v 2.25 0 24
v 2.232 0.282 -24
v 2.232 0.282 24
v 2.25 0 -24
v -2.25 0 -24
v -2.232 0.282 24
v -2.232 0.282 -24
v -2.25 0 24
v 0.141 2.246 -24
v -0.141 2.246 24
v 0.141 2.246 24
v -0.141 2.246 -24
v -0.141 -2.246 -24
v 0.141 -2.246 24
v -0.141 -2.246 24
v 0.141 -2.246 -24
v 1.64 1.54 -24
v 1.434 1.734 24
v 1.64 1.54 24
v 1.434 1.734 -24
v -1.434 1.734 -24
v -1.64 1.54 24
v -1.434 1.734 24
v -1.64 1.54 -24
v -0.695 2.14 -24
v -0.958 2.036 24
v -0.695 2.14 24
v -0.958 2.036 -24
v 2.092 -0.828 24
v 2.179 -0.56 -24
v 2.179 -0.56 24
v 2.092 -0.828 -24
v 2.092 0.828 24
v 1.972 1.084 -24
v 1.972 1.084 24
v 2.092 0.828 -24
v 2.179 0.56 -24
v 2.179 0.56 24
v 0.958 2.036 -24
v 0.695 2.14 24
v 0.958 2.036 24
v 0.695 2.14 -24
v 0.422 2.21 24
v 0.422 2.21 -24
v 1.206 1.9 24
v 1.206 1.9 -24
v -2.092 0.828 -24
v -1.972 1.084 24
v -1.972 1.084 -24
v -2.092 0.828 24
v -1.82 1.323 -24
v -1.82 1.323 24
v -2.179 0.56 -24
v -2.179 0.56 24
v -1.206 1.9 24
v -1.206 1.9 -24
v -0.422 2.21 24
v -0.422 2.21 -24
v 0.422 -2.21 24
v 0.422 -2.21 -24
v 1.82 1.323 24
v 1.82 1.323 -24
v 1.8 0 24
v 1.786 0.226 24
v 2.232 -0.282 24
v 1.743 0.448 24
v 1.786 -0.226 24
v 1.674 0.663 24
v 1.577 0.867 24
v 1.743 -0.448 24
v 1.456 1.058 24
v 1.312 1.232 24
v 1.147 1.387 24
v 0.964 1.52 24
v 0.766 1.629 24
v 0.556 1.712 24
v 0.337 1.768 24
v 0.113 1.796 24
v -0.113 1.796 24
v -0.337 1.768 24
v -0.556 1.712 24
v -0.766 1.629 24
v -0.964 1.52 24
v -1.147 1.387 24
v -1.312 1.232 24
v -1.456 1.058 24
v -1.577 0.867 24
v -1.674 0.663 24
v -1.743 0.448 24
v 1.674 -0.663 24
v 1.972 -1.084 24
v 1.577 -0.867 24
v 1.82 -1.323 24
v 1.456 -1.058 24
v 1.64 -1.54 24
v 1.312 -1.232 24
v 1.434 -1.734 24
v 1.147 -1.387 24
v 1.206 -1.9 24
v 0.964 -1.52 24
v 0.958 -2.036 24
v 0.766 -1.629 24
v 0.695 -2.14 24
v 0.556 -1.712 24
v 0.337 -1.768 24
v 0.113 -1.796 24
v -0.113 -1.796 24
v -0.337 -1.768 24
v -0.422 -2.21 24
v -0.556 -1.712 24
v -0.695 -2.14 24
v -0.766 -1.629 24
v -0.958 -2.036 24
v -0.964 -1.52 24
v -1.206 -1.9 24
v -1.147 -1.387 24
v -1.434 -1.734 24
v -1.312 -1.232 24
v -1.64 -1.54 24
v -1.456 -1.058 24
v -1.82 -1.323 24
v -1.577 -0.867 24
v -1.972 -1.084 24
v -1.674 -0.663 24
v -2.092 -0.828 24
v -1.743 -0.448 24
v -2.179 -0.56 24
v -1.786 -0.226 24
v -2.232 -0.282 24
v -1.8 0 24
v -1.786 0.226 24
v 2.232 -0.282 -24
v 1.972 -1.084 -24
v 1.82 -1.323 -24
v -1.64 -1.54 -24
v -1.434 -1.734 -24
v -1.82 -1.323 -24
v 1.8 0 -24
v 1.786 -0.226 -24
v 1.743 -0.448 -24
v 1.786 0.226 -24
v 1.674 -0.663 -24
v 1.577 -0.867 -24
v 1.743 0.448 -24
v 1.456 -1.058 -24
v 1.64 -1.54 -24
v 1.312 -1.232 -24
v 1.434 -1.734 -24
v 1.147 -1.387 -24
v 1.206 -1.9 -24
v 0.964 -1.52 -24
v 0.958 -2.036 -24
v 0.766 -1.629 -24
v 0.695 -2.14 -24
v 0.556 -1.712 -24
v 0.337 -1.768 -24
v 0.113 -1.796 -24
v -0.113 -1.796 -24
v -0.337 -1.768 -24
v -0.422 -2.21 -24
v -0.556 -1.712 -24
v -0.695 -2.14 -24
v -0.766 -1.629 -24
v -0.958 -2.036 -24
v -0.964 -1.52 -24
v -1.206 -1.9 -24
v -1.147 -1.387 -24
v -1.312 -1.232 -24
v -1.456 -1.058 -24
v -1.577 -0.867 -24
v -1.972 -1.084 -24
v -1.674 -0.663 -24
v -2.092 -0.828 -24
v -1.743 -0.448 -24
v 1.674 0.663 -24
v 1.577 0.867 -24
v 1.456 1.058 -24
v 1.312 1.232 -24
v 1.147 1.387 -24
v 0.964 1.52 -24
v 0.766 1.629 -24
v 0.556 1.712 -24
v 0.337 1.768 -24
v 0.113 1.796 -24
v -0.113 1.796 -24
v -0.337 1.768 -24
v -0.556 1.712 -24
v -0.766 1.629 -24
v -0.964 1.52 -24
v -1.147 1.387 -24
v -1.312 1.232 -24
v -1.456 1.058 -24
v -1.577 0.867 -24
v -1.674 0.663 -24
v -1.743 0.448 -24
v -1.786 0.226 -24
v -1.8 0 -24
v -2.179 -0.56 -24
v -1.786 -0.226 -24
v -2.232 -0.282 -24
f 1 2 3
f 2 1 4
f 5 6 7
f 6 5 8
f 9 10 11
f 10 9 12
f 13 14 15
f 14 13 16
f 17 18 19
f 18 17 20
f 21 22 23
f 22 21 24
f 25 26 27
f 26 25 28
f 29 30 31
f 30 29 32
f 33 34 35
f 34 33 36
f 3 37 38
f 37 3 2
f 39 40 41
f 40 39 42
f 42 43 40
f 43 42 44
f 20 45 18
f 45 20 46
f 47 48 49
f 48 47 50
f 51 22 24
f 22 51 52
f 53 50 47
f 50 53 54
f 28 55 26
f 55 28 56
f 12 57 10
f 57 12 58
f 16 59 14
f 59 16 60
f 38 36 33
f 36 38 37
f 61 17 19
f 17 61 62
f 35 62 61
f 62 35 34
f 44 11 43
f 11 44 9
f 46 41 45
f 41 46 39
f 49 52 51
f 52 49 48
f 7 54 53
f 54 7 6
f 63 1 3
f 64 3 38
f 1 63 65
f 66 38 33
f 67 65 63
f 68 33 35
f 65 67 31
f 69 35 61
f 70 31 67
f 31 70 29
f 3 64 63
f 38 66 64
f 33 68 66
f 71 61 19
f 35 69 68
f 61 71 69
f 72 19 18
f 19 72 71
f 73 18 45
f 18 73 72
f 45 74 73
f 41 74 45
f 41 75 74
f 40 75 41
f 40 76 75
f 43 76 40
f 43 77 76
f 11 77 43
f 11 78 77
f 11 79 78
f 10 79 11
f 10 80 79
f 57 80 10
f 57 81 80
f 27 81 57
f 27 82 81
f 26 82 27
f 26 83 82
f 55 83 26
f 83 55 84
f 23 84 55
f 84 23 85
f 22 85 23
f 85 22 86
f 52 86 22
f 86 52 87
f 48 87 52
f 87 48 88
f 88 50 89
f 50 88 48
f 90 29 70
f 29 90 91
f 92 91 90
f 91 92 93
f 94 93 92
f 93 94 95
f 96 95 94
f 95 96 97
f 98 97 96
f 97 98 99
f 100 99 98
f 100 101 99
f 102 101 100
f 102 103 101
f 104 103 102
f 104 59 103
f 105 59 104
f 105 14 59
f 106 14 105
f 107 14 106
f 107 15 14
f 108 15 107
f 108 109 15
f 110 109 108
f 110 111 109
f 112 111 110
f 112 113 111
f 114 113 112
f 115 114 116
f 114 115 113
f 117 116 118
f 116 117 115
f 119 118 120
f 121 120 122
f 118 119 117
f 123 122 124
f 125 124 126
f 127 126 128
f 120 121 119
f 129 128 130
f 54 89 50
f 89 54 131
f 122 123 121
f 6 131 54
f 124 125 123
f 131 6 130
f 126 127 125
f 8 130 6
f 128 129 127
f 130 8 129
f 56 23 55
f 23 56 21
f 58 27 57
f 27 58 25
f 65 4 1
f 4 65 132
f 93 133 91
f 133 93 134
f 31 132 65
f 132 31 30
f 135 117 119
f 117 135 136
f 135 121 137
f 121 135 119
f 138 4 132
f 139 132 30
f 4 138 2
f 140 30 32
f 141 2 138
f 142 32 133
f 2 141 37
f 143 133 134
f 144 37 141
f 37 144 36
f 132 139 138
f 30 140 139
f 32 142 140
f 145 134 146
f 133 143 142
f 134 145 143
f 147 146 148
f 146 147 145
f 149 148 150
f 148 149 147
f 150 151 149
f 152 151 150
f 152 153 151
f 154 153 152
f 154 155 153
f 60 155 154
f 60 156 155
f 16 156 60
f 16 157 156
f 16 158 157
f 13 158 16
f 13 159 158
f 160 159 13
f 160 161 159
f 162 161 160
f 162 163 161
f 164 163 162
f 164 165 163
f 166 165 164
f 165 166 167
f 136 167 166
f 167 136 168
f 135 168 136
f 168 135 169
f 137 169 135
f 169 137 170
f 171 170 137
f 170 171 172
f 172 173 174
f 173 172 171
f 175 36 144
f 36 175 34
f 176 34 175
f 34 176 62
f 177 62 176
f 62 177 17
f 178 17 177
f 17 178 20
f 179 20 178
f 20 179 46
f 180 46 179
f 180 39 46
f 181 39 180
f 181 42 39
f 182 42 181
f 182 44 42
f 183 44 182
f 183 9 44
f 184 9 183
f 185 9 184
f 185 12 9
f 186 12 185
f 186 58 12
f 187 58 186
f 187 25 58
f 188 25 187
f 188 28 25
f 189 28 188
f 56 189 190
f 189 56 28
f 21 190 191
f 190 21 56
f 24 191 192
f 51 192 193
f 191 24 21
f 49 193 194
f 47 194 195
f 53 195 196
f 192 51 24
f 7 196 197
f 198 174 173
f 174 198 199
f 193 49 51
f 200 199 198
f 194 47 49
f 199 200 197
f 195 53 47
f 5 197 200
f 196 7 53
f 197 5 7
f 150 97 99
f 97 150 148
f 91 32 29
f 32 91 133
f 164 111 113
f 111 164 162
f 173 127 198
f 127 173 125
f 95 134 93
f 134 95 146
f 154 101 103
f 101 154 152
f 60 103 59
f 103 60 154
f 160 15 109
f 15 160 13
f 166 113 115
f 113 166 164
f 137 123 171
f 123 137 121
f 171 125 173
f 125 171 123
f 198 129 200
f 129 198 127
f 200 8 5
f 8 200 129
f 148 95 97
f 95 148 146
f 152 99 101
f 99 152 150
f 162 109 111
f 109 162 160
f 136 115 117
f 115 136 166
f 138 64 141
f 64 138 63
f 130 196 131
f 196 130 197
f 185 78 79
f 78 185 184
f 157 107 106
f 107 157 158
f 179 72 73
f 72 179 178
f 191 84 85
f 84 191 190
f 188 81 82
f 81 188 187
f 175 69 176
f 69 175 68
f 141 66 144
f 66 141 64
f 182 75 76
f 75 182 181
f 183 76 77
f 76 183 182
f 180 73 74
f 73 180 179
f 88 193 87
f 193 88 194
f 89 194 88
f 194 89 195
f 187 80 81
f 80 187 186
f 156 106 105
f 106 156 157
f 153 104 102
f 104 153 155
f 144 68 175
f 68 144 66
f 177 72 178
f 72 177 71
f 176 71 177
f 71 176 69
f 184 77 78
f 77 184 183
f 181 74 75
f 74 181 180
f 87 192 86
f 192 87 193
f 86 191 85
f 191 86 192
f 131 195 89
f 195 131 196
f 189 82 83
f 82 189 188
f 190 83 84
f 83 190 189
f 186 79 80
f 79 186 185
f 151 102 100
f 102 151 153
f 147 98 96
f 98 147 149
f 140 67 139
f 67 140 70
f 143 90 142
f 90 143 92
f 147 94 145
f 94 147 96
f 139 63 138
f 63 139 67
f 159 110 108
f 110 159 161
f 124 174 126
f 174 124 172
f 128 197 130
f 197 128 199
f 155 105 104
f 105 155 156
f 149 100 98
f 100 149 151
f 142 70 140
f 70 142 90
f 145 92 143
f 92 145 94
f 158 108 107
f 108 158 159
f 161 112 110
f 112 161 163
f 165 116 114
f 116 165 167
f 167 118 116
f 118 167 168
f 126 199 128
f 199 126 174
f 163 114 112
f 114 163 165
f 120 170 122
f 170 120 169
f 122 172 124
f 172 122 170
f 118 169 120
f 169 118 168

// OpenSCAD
$fn = 50;


difference() {
	union() {
		translate(v = [0, 0, -24.0000000000]) {
			cylinder(h = 48, r = 2.2500000000);
		}
	}
	union() {
		translate(v = [0, 0, -100.0000000000]) {
			cylinder(h = 200, r = 1.8000000000);
		}
	}
}
